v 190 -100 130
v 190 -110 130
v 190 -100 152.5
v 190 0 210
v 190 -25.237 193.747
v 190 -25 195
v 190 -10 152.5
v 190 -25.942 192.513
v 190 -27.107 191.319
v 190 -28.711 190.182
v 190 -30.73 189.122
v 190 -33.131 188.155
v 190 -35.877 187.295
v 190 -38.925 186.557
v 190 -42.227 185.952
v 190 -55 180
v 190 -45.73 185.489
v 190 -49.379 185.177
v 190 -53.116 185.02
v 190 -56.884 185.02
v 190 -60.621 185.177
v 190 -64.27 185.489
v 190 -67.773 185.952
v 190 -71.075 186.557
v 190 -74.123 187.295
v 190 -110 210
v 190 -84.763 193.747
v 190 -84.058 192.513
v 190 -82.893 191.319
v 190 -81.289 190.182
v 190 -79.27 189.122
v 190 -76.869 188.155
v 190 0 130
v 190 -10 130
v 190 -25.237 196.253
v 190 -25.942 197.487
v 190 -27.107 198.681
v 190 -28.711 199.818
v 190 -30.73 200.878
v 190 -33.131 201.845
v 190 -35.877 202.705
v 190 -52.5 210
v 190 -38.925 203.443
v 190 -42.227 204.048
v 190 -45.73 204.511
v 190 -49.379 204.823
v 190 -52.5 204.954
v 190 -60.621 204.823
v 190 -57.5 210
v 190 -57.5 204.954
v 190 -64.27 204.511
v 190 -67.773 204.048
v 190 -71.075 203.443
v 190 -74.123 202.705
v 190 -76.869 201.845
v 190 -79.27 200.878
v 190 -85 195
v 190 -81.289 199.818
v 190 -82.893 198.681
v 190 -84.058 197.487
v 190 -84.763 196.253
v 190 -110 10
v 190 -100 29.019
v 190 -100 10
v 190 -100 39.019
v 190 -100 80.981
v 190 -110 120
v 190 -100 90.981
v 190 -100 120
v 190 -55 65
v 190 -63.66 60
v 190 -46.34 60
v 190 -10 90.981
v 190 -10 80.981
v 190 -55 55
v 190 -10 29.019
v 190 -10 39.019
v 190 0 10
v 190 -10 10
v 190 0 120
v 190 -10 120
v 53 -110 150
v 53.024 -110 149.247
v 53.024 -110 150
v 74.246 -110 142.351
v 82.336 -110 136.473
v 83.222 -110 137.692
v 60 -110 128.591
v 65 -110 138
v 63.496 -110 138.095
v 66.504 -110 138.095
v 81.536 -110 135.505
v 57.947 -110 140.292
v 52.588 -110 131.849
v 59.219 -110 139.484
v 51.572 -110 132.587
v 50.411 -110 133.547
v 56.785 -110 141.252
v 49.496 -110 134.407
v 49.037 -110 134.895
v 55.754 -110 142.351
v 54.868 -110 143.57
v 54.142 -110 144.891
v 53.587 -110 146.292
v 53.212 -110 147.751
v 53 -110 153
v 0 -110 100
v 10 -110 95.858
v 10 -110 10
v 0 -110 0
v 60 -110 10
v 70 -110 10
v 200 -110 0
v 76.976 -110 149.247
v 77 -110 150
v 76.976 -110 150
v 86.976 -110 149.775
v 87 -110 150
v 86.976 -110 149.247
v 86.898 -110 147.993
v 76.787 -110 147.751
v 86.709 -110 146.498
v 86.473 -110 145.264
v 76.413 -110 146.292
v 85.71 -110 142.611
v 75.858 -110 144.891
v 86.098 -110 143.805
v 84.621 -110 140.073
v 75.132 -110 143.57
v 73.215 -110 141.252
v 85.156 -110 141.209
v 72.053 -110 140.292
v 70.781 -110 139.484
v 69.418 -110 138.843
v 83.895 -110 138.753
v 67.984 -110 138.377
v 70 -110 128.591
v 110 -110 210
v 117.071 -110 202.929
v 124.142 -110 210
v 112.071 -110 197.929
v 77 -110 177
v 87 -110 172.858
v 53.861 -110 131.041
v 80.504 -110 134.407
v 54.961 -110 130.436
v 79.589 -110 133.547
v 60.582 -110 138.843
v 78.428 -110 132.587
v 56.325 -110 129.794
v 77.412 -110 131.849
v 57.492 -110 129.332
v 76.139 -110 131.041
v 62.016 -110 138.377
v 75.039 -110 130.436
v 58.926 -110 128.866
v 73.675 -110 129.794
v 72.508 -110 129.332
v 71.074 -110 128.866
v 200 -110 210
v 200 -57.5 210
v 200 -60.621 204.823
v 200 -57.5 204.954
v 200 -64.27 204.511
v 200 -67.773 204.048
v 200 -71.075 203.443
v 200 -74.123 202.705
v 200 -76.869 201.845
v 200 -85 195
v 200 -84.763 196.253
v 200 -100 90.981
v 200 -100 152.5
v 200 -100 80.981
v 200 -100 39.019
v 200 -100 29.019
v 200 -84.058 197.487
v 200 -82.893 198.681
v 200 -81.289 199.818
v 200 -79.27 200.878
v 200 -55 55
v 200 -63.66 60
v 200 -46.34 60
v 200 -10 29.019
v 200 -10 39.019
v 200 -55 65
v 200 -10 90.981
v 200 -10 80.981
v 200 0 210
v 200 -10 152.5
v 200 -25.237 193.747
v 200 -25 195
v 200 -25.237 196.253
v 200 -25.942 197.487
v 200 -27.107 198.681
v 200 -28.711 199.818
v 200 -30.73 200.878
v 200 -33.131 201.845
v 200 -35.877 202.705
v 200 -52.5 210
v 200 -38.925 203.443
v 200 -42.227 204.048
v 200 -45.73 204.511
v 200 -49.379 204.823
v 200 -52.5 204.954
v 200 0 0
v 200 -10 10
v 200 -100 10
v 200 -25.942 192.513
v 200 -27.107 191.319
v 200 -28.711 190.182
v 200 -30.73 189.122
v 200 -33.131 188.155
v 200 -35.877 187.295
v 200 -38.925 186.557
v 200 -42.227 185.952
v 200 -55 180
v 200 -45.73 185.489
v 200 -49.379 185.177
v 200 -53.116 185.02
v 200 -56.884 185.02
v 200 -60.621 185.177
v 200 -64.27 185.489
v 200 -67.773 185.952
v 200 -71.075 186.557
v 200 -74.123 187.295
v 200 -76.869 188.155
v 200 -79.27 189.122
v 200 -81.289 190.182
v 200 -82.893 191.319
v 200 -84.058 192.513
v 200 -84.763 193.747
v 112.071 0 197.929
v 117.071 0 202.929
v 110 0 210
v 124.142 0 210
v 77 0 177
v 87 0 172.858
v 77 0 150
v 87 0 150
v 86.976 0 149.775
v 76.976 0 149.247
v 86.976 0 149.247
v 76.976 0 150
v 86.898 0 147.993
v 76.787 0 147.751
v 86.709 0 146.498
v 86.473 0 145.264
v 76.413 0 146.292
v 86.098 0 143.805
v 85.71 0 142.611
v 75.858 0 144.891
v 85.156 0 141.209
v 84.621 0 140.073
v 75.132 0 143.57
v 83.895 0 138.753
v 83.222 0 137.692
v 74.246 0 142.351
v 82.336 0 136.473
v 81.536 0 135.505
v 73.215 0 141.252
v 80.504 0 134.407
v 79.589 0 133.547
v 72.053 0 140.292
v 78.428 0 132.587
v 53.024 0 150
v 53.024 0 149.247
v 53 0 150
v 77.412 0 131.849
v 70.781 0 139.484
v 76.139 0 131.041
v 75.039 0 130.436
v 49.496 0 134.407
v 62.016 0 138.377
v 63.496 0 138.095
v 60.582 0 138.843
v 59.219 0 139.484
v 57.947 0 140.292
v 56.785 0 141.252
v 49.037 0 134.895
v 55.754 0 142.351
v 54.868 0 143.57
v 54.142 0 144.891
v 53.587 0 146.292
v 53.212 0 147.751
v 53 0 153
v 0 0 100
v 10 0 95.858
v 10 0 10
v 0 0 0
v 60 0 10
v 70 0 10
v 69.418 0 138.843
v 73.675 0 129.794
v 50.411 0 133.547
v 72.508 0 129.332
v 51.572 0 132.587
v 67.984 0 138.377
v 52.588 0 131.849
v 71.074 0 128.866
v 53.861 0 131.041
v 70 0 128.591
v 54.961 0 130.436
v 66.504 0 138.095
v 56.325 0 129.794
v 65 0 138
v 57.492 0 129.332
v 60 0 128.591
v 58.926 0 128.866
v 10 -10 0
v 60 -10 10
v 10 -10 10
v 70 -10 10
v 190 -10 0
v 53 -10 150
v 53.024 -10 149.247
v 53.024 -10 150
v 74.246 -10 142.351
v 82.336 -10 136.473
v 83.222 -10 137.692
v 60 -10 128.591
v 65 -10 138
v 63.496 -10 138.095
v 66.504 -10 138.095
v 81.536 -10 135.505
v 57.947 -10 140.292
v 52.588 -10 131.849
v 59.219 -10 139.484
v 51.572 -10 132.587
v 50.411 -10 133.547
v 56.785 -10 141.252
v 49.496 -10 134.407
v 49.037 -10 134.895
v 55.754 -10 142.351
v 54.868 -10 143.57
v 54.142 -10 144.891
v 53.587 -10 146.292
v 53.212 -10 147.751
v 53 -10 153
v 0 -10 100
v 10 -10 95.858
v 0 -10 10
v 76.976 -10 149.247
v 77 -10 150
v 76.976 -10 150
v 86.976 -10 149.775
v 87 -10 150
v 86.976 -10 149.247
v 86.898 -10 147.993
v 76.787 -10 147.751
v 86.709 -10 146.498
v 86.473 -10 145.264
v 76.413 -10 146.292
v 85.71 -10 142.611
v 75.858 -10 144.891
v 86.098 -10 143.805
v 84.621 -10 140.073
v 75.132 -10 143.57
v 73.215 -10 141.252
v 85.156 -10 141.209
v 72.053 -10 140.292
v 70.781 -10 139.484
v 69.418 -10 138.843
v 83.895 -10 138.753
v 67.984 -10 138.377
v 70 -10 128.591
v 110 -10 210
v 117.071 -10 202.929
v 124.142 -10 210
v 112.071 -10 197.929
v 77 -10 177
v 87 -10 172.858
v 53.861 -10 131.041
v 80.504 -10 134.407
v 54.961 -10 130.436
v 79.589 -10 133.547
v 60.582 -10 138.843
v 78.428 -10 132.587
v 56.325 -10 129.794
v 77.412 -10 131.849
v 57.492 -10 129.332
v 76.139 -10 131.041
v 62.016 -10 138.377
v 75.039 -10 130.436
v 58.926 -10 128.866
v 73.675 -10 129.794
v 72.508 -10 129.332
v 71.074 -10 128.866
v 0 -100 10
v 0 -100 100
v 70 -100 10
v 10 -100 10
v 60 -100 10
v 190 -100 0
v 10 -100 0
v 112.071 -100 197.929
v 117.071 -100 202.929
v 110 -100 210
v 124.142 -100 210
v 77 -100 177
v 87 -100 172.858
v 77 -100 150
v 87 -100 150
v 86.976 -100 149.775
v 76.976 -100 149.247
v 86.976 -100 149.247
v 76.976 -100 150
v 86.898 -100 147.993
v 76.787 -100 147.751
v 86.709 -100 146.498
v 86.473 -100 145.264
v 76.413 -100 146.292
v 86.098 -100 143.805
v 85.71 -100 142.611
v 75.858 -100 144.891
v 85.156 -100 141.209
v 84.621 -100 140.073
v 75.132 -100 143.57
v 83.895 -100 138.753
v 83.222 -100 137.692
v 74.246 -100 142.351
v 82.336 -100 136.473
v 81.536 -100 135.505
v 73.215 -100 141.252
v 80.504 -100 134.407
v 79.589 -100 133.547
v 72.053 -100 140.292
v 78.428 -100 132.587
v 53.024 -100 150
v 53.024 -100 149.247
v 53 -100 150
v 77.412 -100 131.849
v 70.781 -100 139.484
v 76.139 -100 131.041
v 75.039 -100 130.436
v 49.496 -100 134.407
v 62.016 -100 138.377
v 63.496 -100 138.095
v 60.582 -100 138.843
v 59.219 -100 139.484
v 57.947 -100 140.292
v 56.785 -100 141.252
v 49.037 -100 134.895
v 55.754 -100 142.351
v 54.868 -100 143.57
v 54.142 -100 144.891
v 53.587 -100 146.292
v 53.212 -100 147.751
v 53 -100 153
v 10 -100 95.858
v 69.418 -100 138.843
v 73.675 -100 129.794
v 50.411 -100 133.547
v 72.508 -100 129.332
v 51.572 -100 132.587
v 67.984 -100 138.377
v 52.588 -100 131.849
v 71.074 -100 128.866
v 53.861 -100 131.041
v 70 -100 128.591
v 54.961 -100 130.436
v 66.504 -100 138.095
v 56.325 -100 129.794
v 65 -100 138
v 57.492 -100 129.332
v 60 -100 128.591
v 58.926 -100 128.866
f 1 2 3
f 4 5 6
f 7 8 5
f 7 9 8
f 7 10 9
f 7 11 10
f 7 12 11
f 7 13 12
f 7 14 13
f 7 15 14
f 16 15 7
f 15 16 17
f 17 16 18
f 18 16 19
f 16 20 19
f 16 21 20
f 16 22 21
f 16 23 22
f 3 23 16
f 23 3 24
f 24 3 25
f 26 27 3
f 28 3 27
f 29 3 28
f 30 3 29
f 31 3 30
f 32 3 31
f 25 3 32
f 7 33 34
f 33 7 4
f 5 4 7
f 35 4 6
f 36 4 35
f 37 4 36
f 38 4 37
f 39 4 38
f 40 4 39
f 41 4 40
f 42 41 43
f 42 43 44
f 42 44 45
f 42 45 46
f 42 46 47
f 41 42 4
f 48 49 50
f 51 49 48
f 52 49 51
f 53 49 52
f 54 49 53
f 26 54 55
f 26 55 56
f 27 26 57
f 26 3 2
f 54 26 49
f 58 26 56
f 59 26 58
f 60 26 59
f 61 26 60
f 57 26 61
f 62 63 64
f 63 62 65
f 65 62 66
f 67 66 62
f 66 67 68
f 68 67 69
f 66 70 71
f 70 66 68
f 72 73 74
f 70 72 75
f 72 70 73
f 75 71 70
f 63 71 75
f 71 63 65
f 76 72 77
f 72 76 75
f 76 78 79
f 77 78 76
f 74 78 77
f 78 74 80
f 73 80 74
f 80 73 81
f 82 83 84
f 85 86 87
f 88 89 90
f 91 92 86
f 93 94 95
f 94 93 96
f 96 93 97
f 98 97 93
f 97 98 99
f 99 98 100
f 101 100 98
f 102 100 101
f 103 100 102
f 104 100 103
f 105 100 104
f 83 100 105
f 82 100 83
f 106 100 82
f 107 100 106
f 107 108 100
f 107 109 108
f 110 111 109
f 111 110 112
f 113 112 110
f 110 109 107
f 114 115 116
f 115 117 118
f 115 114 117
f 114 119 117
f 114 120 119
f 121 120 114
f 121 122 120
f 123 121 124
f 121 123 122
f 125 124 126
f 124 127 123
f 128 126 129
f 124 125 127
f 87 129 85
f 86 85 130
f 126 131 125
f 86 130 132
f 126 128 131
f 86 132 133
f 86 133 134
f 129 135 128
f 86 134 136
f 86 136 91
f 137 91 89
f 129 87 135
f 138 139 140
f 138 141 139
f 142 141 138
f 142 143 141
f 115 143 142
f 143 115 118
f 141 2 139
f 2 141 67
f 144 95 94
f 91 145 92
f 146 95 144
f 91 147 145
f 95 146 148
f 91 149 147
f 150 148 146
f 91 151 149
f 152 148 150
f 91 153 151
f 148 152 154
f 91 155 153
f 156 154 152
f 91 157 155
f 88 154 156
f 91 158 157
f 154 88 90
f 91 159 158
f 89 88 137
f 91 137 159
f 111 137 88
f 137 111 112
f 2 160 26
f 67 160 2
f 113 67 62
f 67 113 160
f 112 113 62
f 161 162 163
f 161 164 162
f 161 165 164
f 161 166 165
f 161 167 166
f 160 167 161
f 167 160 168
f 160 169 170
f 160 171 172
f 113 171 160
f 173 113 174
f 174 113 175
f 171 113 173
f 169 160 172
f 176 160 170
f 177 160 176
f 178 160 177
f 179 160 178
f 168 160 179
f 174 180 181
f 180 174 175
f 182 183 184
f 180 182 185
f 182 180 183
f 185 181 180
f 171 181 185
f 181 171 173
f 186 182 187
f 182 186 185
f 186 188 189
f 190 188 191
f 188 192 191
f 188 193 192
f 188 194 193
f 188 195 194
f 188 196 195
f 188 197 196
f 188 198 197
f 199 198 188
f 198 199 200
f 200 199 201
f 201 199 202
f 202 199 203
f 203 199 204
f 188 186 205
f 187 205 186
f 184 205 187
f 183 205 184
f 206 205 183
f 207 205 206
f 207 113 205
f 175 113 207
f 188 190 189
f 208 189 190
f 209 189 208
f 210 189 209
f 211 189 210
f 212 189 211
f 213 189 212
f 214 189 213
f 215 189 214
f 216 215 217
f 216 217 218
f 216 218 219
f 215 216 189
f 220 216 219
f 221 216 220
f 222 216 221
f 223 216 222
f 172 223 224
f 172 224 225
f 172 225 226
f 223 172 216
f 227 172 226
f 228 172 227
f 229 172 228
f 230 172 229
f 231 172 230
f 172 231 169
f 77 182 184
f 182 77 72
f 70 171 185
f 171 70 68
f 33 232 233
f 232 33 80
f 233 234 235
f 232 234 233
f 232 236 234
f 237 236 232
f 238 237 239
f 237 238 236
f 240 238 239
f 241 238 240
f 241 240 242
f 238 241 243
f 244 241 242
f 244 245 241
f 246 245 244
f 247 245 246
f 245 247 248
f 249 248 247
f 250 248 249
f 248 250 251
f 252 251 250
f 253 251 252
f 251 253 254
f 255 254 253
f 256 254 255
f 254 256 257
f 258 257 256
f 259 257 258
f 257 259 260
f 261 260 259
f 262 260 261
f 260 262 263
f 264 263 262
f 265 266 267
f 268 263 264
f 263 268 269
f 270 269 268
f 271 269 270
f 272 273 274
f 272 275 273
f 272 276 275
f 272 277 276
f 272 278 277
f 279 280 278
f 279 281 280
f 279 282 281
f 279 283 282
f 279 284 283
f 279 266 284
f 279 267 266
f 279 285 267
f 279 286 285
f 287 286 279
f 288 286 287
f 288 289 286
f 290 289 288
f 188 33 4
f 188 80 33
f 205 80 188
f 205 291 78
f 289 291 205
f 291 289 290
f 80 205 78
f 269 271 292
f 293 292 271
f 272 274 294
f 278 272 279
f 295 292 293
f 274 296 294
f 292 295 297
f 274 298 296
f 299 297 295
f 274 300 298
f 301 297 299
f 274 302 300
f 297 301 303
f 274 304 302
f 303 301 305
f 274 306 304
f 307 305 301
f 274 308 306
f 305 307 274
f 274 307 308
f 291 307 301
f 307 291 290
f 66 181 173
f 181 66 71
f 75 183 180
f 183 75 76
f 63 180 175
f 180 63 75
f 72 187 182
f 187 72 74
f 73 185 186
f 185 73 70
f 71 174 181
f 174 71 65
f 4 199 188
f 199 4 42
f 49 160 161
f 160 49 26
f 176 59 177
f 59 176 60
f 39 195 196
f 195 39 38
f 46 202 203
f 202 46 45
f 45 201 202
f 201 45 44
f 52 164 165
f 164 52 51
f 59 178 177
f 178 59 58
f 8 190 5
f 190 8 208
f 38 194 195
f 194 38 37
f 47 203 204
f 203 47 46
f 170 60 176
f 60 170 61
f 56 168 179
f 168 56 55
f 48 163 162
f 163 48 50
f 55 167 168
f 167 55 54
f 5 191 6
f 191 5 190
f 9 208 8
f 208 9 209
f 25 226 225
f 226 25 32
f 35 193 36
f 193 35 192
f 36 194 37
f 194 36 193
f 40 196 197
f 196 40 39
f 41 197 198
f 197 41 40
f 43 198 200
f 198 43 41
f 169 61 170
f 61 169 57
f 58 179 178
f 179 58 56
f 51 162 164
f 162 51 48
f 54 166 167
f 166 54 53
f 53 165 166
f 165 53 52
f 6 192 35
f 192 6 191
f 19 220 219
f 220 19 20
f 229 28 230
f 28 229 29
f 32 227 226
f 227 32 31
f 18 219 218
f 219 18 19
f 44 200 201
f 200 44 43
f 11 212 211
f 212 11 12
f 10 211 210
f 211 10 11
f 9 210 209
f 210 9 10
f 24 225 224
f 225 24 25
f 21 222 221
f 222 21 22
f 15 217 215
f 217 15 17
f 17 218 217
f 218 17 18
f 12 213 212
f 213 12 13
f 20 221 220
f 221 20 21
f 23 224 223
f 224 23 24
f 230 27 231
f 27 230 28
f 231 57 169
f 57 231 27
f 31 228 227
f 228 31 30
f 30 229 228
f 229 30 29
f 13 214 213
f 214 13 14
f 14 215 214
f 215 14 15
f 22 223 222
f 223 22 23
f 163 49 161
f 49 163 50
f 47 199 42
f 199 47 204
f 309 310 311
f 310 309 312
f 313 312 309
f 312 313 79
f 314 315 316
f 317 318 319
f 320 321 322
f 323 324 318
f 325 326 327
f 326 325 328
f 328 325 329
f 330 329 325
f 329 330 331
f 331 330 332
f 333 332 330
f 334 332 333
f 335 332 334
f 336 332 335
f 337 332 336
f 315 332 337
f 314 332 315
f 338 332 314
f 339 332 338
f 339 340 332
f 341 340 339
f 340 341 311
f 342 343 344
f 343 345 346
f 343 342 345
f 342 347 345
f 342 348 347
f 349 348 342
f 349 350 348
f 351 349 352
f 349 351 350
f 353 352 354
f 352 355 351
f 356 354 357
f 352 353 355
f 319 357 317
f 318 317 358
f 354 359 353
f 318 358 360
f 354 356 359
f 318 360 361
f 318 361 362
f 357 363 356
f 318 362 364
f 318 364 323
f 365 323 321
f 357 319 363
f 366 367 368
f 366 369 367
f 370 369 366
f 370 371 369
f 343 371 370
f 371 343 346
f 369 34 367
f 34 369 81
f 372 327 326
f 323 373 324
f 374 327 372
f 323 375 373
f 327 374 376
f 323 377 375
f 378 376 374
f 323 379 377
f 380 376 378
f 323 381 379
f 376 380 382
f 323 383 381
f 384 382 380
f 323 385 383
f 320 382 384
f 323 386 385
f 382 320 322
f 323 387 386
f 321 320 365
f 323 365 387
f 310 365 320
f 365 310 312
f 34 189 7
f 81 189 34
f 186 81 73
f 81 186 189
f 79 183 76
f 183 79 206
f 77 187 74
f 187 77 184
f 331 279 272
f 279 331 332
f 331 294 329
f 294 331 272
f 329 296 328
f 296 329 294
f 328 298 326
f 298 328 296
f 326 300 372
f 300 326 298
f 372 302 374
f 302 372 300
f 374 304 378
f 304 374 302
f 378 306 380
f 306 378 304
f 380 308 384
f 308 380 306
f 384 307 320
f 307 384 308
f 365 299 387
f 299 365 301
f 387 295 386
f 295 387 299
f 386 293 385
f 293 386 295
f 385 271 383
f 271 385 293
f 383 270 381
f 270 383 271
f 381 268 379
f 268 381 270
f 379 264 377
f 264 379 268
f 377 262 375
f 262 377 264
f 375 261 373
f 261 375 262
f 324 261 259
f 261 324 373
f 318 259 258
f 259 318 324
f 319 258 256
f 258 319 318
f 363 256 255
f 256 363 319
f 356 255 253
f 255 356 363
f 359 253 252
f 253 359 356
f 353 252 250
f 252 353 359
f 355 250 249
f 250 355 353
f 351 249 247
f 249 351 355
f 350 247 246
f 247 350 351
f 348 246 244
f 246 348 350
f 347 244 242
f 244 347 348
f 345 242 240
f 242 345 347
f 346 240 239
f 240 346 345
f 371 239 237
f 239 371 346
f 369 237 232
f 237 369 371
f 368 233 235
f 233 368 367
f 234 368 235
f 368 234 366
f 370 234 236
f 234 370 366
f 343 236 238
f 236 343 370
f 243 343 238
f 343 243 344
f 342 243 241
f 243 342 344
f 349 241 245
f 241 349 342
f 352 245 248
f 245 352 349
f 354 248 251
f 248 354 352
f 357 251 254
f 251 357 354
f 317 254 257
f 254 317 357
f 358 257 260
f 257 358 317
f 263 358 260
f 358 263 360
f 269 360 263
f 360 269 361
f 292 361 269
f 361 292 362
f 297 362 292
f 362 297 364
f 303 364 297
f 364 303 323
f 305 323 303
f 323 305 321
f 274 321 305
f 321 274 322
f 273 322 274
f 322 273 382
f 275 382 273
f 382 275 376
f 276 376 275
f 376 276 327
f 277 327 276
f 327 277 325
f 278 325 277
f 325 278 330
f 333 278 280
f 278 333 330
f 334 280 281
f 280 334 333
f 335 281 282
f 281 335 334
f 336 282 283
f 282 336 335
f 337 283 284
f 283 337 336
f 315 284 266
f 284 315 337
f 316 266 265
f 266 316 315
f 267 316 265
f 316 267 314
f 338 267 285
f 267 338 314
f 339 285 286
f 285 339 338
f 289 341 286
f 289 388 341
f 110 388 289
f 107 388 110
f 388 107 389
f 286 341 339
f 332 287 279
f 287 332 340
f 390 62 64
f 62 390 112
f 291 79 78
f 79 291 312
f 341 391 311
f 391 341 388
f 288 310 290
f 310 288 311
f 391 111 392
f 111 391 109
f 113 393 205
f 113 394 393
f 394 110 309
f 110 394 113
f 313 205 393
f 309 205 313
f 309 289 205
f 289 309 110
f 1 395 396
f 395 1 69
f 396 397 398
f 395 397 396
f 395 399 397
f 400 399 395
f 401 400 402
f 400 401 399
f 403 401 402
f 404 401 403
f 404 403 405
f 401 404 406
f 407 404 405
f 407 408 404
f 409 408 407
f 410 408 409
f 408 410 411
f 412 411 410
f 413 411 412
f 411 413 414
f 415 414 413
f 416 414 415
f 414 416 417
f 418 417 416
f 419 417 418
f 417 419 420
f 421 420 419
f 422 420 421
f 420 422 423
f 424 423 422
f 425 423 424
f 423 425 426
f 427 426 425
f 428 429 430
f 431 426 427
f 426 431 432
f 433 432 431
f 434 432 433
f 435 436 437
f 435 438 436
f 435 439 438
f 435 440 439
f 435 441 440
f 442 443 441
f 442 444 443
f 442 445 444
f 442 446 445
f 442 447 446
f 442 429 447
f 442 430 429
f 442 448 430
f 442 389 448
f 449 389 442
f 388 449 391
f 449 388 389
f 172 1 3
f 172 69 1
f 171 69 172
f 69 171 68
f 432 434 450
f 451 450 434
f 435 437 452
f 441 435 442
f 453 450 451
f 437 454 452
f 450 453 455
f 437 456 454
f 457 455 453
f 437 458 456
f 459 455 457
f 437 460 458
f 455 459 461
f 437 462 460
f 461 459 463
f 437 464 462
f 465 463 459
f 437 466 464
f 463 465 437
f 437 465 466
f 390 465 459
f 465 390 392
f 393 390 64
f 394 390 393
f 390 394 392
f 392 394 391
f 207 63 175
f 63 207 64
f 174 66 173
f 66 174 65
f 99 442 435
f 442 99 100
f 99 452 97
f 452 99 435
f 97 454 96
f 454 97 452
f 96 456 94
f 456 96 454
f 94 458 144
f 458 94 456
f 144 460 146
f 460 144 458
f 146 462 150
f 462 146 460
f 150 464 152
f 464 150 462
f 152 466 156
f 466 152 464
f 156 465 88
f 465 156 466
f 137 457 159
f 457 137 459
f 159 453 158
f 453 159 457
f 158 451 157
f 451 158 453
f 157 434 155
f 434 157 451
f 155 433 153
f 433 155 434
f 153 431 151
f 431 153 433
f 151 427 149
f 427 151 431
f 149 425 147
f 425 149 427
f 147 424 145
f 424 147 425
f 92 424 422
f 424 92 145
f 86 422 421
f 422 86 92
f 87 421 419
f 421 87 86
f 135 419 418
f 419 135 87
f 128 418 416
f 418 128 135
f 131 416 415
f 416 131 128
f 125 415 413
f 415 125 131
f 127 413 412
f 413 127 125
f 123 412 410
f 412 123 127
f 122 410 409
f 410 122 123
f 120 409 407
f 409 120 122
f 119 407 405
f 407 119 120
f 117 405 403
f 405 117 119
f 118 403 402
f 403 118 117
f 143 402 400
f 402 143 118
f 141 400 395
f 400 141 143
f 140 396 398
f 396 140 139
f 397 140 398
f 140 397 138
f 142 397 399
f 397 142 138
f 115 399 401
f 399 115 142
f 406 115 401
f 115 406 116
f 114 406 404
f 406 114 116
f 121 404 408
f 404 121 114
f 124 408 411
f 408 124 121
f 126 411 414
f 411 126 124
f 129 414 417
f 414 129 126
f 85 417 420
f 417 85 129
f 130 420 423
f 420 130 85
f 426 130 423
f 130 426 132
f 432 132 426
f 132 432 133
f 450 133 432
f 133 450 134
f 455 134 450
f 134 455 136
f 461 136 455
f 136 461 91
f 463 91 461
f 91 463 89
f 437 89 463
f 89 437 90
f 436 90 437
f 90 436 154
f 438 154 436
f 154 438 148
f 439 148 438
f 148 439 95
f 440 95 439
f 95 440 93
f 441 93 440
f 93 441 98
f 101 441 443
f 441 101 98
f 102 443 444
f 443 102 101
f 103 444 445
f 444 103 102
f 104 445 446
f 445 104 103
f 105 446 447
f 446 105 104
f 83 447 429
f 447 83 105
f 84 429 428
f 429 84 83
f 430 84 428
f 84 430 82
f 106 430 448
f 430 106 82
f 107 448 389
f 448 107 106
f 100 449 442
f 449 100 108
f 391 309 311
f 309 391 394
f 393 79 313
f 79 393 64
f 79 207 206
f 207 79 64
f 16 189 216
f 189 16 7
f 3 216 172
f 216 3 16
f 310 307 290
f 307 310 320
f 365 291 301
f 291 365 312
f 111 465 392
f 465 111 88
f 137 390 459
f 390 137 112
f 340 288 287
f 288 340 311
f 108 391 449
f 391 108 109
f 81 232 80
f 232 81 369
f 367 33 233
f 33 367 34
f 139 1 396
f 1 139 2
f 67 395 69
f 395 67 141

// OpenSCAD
in = 25.4;
cm = 10;
mm = 1;
inf = 10e10;
nc = 10e-3;


// tube is the part of the holder
// roll is the part that the filament is wound around

// params
wall_thickness = 10*mm;
tube_diameter = 2*cm;
roll_extra_space = 0.5*cm; // on each side of roll
tube_extra_space = 2*mm;
stand_buffer_space = 2*cm; // space to prevent the stand from bumping the wall of the container it's in
fn = 50; // $fn for cylinders

// measurements
roll_width = 10*cm;
roll_diameter = 26*cm;
roll_hole_diameter = 6*cm;
roll_suspend_height = (roll_diameter+roll_hole_diameter-tube_diameter) / 2 + 0*cm;

print_area_width = 20*cm;
print_area_height = 21*cm;

// calculations
roll_suspend_height_center = (roll_suspend_height-tube_diameter/2);
holder_height = roll_suspend_height_center*2;
holder_width = roll_width + roll_extra_space*2;
holder_length = holder_height + stand_buffer_space;
holder_tube_gap_radius = tube_diameter/2 + tube_extra_space;
holder_tube_gap_ypos = roll_suspend_height+1.5*cm;

center_height = print_area_height < holder_height ? print_area_height / 2 : holder_height / 2;
center_length = print_area_width < holder_length ? print_area_width / 2 : holder_length / 2;

// from https://gist.github.com/boredzo/fde487c724a40a26fa9c:
/*skew takes an array of six angles:
 *x along y
 *x along z
 *y along x
 *y along z
 *z along x
 *z along y
 */
module skew(dims) {
    matrix = [
        [ 1, tan(dims[0]), tan(dims[1]), 0 ],
        [ tan(dims[2]), 1, tan(dims[3]), 0 ],
        [ tan(dims[4]), tan(dims[5]), 1, 0 ],
        [ 0, 0, 0, 1 ]
    ];
    multmatrix(matrix)
    children();
}

module right_triangular_cylinder(width, length, depth) {
    // makes a right triangle with the right angle at the top-right corner
    rotate([90, 0, -90])
    linear_extrude(height=depth)
    polygon(points=[
        [0,0],
        [0,width],
        [length, 0]
    ], paths=[
        [0,1,2]
    ]);
}

module stand_polygon() {
    difference() {
        square(size=[holder_length, holder_height]);

        rotate([0, 0, 45])
        square(size=[holder_height*2, holder_height]);

        translate([holder_tube_gap_ypos, roll_suspend_height])
        rotate([0, 0, 90])
        circle(r=holder_tube_gap_radius, $fn=fn);
        
        translate([holder_tube_gap_ypos-holder_tube_gap_radius, roll_suspend_height])
        square(size=[holder_tube_gap_radius*2, inf]);
    }
}

module stand_solid() {
    linear_extrude(height=wall_thickness, center=false, convexity=10, twist=0) {
        intersection() {
            difference() {
                stand_polygon();

                offset(r=-wall_thickness)
                stand_polygon();
            }

            translate([holder_length-print_area_width, 0])
            square([print_area_width, print_area_height]);
        }
    }
}

module stand() {
    stand_solid();

    translate([0, 0, holder_width-wall_thickness])
    stand_solid();

    // bottom connects
    translate([holder_length-print_area_width, 0, 0])
    cube([wall_thickness, wall_thickness, holder_width]);

    translate([holder_length-wall_thickness, 0, 0])
    cube([wall_thickness, wall_thickness, holder_width]);

    // front connects
    translate([0, -center_height/3, 0]) {
        translate([holder_length-wall_thickness, holder_width-2*wall_thickness-holder_width*tan(30)/2, 0])
        skew([0,0,0,30,0,0])
        cube([wall_thickness, wall_thickness, holder_width]);

        translate([holder_length-wall_thickness, holder_width-2*wall_thickness+holder_width*tan(30)/2, 0])
        skew([0,0,0,-30,0,0])
        cube([wall_thickness, wall_thickness, holder_width]);
    }

    translate([holder_length, print_area_height-wall_thickness*3, wall_thickness])
    right_triangular_cylinder(width=holder_width/2-wall_thickness, length=holder_width/4, depth=wall_thickness);
    
    translate([holder_length, print_area_height-wall_thickness*3, holder_width-wall_thickness])
    mirror([0,0,1])
    right_triangular_cylinder(width=holder_width/2-wall_thickness, length=holder_width/4, depth=wall_thickness);

    translate([holder_length-wall_thickness, print_area_height-wall_thickness*3, 0])
    difference() {
        // wire guide
        cube([wall_thickness, wall_thickness*3, holder_width]);

        translate([-nc, wall_thickness*3/2, holder_width/2])
        scale([1, 1, 3])
        rotate([0, 90, 0])
        cylinder(r=wall_thickness, h=holder_width+2*nc, center=false, $fn=fn);

        translate([-nc, wall_thickness*2+nc, holder_width/2-wall_thickness/4])
        cube([wall_thickness+2*nc, wall_thickness, wall_thickness/2]);
    }

    // vertical connects
    translate([holder_tube_gap_ypos-wall_thickness+wall_thickness/2, 0, 0])
    cube([wall_thickness, roll_suspend_height-holder_tube_gap_radius, wall_thickness]);

    translate([holder_tube_gap_ypos-wall_thickness+wall_thickness/2, 0, holder_width-wall_thickness])
    cube([wall_thickness, roll_suspend_height-holder_tube_gap_radius, wall_thickness]);
    
    translate([holder_length-print_area_width, 0, 0])
    cube([wall_thickness, holder_length-print_area_width, wall_thickness]);

    translate([holder_length-print_area_width, 0, holder_width-wall_thickness])
    cube([wall_thickness, holder_length-print_area_width, wall_thickness]);

    // top connect
    // translate([print_area_height, print_area_height-wall_thickness, 0])
    // cube([holder_length-print_area_height, wall_thickness, wall_thickness]);
    
    // translate([print_area_height, print_area_height-wall_thickness, holder_width-wall_thickness])
    // cube([holder_length-print_area_height, wall_thickness, wall_thickness]);

    translate([print_area_height, print_area_height-wall_thickness, 0])
    skew([0,0,-45,0,0,0])
    cube([(holder_length-print_area_height), wall_thickness, wall_thickness]);
    
    translate([print_area_height, print_area_height-wall_thickness, holder_width-wall_thickness])
    skew([0,0,-45,0,0,0])
    cube([(holder_length-print_area_height), wall_thickness, wall_thickness]);
}

translate([print_area_width-holder_length, 0, 0])
rotate([90, 0, 0])
// minkowski() {
    // sphere(r=5*mm, $fs=5);
    stand();
// }
